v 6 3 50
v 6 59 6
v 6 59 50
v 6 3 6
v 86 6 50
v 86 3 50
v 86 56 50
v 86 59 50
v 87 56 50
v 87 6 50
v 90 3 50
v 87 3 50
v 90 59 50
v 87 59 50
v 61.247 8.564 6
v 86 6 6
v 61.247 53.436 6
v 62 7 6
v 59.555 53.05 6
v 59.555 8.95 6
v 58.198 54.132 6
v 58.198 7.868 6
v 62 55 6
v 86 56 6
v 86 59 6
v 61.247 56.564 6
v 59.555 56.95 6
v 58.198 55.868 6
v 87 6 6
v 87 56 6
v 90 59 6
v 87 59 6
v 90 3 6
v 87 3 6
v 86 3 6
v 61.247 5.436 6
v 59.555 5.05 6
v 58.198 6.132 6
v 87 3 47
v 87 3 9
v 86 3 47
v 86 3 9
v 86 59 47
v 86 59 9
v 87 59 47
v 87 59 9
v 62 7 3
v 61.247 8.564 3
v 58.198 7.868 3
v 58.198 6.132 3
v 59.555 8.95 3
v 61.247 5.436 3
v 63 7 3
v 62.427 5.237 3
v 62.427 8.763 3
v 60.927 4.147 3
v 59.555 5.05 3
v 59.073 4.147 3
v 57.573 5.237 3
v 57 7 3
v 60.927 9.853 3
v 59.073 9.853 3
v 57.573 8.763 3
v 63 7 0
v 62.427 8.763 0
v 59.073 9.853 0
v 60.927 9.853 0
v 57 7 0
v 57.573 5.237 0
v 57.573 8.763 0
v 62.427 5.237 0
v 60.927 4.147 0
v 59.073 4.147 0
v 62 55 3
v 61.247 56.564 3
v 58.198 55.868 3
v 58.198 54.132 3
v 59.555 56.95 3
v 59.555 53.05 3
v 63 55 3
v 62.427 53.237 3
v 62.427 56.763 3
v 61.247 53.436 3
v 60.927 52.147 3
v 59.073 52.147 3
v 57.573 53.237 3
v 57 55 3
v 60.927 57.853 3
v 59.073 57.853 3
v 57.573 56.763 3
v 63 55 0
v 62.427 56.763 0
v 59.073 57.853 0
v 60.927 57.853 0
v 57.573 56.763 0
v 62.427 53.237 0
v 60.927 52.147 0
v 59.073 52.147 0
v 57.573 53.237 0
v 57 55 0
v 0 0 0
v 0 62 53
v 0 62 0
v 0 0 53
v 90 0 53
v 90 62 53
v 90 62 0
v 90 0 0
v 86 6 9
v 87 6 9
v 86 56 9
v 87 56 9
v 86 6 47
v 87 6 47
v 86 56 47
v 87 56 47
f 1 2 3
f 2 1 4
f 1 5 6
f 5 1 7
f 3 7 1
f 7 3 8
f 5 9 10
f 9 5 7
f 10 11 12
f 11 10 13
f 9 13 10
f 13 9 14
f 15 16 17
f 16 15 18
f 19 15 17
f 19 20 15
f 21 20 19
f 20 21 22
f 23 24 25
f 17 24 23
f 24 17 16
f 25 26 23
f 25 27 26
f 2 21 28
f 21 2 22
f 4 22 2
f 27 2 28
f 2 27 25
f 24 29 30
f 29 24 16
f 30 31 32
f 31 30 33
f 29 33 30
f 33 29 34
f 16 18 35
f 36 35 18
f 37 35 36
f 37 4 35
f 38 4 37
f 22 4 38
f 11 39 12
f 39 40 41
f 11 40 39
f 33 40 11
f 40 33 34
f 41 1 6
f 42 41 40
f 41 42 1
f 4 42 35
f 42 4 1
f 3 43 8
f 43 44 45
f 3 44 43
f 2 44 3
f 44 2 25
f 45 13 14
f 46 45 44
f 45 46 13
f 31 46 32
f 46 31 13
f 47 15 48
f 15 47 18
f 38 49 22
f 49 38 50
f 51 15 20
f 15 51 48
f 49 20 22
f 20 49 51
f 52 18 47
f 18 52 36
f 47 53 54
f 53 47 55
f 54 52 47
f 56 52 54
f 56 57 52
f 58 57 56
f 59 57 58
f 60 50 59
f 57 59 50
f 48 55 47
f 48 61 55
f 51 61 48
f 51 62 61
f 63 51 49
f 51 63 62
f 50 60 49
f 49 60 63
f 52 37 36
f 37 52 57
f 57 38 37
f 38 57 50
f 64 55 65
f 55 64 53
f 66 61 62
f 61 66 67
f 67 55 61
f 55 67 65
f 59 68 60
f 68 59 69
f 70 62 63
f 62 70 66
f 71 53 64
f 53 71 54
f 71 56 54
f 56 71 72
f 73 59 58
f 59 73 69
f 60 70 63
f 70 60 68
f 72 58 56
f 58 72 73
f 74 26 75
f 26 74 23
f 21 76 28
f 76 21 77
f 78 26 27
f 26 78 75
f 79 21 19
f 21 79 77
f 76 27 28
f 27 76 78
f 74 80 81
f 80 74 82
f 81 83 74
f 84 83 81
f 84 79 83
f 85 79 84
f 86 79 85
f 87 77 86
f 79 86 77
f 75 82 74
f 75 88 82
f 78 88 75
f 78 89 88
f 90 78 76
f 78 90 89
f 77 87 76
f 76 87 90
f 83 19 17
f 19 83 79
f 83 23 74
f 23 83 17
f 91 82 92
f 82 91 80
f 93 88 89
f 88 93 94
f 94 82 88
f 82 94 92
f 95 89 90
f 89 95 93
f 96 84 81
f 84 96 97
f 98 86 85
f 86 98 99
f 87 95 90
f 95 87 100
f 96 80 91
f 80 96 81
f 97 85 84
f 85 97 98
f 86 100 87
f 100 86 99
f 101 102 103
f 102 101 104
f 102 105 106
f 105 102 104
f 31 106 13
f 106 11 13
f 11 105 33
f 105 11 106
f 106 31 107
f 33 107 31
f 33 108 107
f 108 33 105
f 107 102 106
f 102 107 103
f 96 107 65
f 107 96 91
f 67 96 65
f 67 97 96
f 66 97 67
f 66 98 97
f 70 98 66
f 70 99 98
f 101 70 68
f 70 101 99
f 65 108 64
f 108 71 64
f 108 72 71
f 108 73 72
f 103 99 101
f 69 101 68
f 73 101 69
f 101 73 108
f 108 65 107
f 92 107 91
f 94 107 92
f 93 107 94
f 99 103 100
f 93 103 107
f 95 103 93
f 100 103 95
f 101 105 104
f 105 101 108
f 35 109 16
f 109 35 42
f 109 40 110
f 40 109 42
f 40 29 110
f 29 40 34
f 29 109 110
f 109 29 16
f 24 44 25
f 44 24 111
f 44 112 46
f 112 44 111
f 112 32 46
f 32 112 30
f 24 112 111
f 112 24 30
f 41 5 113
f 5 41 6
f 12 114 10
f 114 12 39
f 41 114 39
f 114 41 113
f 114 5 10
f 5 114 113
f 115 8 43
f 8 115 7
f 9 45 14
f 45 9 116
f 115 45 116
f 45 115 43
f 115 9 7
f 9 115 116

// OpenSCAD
wallthickness = 3;
bottomthickness = 6;

length = 90;
width = 62;
height = 53;

holewidth = 48;
hole1radius = 2;
holesidedistance = (width - holewidth)/2;
hole2radius = 3;

difference(){ 
    cube([length,width,height]);
    union() {
    translate([3+wallthickness,wallthickness,bottomthickness])
    cube([length-(wallthickness*2)+1,width-(wallthickness*2),height-(wallthickness+bottomthickness)]);
    
    translate([60,holesidedistance,3]) cylinder(h=10,r=hole1radius);
    translate([60,holesidedistance,-1]) cylinder(h=4,r=hole2radius);
        
    translate([60,width-holesidedistance,3]) cylinder(h=10,r=hole1radius);
    translate([60,width-holesidedistance,-1]) cylinder(h=4,r=hole2radius);
    }
}

// Add 4 small pieces to stop the lid from falling in
translate([length-3-1,wallthickness,bottomthickness])
cube([1,3,3]);

translate([length-3-1,width-wallthickness-3,bottomthickness])
cube([1,3,3]);

translate([length-3-1,wallthickness,height-3-wallthickness])
cube([1,3,3]);

translate([length-3-1,width-wallthickness-3,height-3-wallthickness])
cube([1,3,3]);
